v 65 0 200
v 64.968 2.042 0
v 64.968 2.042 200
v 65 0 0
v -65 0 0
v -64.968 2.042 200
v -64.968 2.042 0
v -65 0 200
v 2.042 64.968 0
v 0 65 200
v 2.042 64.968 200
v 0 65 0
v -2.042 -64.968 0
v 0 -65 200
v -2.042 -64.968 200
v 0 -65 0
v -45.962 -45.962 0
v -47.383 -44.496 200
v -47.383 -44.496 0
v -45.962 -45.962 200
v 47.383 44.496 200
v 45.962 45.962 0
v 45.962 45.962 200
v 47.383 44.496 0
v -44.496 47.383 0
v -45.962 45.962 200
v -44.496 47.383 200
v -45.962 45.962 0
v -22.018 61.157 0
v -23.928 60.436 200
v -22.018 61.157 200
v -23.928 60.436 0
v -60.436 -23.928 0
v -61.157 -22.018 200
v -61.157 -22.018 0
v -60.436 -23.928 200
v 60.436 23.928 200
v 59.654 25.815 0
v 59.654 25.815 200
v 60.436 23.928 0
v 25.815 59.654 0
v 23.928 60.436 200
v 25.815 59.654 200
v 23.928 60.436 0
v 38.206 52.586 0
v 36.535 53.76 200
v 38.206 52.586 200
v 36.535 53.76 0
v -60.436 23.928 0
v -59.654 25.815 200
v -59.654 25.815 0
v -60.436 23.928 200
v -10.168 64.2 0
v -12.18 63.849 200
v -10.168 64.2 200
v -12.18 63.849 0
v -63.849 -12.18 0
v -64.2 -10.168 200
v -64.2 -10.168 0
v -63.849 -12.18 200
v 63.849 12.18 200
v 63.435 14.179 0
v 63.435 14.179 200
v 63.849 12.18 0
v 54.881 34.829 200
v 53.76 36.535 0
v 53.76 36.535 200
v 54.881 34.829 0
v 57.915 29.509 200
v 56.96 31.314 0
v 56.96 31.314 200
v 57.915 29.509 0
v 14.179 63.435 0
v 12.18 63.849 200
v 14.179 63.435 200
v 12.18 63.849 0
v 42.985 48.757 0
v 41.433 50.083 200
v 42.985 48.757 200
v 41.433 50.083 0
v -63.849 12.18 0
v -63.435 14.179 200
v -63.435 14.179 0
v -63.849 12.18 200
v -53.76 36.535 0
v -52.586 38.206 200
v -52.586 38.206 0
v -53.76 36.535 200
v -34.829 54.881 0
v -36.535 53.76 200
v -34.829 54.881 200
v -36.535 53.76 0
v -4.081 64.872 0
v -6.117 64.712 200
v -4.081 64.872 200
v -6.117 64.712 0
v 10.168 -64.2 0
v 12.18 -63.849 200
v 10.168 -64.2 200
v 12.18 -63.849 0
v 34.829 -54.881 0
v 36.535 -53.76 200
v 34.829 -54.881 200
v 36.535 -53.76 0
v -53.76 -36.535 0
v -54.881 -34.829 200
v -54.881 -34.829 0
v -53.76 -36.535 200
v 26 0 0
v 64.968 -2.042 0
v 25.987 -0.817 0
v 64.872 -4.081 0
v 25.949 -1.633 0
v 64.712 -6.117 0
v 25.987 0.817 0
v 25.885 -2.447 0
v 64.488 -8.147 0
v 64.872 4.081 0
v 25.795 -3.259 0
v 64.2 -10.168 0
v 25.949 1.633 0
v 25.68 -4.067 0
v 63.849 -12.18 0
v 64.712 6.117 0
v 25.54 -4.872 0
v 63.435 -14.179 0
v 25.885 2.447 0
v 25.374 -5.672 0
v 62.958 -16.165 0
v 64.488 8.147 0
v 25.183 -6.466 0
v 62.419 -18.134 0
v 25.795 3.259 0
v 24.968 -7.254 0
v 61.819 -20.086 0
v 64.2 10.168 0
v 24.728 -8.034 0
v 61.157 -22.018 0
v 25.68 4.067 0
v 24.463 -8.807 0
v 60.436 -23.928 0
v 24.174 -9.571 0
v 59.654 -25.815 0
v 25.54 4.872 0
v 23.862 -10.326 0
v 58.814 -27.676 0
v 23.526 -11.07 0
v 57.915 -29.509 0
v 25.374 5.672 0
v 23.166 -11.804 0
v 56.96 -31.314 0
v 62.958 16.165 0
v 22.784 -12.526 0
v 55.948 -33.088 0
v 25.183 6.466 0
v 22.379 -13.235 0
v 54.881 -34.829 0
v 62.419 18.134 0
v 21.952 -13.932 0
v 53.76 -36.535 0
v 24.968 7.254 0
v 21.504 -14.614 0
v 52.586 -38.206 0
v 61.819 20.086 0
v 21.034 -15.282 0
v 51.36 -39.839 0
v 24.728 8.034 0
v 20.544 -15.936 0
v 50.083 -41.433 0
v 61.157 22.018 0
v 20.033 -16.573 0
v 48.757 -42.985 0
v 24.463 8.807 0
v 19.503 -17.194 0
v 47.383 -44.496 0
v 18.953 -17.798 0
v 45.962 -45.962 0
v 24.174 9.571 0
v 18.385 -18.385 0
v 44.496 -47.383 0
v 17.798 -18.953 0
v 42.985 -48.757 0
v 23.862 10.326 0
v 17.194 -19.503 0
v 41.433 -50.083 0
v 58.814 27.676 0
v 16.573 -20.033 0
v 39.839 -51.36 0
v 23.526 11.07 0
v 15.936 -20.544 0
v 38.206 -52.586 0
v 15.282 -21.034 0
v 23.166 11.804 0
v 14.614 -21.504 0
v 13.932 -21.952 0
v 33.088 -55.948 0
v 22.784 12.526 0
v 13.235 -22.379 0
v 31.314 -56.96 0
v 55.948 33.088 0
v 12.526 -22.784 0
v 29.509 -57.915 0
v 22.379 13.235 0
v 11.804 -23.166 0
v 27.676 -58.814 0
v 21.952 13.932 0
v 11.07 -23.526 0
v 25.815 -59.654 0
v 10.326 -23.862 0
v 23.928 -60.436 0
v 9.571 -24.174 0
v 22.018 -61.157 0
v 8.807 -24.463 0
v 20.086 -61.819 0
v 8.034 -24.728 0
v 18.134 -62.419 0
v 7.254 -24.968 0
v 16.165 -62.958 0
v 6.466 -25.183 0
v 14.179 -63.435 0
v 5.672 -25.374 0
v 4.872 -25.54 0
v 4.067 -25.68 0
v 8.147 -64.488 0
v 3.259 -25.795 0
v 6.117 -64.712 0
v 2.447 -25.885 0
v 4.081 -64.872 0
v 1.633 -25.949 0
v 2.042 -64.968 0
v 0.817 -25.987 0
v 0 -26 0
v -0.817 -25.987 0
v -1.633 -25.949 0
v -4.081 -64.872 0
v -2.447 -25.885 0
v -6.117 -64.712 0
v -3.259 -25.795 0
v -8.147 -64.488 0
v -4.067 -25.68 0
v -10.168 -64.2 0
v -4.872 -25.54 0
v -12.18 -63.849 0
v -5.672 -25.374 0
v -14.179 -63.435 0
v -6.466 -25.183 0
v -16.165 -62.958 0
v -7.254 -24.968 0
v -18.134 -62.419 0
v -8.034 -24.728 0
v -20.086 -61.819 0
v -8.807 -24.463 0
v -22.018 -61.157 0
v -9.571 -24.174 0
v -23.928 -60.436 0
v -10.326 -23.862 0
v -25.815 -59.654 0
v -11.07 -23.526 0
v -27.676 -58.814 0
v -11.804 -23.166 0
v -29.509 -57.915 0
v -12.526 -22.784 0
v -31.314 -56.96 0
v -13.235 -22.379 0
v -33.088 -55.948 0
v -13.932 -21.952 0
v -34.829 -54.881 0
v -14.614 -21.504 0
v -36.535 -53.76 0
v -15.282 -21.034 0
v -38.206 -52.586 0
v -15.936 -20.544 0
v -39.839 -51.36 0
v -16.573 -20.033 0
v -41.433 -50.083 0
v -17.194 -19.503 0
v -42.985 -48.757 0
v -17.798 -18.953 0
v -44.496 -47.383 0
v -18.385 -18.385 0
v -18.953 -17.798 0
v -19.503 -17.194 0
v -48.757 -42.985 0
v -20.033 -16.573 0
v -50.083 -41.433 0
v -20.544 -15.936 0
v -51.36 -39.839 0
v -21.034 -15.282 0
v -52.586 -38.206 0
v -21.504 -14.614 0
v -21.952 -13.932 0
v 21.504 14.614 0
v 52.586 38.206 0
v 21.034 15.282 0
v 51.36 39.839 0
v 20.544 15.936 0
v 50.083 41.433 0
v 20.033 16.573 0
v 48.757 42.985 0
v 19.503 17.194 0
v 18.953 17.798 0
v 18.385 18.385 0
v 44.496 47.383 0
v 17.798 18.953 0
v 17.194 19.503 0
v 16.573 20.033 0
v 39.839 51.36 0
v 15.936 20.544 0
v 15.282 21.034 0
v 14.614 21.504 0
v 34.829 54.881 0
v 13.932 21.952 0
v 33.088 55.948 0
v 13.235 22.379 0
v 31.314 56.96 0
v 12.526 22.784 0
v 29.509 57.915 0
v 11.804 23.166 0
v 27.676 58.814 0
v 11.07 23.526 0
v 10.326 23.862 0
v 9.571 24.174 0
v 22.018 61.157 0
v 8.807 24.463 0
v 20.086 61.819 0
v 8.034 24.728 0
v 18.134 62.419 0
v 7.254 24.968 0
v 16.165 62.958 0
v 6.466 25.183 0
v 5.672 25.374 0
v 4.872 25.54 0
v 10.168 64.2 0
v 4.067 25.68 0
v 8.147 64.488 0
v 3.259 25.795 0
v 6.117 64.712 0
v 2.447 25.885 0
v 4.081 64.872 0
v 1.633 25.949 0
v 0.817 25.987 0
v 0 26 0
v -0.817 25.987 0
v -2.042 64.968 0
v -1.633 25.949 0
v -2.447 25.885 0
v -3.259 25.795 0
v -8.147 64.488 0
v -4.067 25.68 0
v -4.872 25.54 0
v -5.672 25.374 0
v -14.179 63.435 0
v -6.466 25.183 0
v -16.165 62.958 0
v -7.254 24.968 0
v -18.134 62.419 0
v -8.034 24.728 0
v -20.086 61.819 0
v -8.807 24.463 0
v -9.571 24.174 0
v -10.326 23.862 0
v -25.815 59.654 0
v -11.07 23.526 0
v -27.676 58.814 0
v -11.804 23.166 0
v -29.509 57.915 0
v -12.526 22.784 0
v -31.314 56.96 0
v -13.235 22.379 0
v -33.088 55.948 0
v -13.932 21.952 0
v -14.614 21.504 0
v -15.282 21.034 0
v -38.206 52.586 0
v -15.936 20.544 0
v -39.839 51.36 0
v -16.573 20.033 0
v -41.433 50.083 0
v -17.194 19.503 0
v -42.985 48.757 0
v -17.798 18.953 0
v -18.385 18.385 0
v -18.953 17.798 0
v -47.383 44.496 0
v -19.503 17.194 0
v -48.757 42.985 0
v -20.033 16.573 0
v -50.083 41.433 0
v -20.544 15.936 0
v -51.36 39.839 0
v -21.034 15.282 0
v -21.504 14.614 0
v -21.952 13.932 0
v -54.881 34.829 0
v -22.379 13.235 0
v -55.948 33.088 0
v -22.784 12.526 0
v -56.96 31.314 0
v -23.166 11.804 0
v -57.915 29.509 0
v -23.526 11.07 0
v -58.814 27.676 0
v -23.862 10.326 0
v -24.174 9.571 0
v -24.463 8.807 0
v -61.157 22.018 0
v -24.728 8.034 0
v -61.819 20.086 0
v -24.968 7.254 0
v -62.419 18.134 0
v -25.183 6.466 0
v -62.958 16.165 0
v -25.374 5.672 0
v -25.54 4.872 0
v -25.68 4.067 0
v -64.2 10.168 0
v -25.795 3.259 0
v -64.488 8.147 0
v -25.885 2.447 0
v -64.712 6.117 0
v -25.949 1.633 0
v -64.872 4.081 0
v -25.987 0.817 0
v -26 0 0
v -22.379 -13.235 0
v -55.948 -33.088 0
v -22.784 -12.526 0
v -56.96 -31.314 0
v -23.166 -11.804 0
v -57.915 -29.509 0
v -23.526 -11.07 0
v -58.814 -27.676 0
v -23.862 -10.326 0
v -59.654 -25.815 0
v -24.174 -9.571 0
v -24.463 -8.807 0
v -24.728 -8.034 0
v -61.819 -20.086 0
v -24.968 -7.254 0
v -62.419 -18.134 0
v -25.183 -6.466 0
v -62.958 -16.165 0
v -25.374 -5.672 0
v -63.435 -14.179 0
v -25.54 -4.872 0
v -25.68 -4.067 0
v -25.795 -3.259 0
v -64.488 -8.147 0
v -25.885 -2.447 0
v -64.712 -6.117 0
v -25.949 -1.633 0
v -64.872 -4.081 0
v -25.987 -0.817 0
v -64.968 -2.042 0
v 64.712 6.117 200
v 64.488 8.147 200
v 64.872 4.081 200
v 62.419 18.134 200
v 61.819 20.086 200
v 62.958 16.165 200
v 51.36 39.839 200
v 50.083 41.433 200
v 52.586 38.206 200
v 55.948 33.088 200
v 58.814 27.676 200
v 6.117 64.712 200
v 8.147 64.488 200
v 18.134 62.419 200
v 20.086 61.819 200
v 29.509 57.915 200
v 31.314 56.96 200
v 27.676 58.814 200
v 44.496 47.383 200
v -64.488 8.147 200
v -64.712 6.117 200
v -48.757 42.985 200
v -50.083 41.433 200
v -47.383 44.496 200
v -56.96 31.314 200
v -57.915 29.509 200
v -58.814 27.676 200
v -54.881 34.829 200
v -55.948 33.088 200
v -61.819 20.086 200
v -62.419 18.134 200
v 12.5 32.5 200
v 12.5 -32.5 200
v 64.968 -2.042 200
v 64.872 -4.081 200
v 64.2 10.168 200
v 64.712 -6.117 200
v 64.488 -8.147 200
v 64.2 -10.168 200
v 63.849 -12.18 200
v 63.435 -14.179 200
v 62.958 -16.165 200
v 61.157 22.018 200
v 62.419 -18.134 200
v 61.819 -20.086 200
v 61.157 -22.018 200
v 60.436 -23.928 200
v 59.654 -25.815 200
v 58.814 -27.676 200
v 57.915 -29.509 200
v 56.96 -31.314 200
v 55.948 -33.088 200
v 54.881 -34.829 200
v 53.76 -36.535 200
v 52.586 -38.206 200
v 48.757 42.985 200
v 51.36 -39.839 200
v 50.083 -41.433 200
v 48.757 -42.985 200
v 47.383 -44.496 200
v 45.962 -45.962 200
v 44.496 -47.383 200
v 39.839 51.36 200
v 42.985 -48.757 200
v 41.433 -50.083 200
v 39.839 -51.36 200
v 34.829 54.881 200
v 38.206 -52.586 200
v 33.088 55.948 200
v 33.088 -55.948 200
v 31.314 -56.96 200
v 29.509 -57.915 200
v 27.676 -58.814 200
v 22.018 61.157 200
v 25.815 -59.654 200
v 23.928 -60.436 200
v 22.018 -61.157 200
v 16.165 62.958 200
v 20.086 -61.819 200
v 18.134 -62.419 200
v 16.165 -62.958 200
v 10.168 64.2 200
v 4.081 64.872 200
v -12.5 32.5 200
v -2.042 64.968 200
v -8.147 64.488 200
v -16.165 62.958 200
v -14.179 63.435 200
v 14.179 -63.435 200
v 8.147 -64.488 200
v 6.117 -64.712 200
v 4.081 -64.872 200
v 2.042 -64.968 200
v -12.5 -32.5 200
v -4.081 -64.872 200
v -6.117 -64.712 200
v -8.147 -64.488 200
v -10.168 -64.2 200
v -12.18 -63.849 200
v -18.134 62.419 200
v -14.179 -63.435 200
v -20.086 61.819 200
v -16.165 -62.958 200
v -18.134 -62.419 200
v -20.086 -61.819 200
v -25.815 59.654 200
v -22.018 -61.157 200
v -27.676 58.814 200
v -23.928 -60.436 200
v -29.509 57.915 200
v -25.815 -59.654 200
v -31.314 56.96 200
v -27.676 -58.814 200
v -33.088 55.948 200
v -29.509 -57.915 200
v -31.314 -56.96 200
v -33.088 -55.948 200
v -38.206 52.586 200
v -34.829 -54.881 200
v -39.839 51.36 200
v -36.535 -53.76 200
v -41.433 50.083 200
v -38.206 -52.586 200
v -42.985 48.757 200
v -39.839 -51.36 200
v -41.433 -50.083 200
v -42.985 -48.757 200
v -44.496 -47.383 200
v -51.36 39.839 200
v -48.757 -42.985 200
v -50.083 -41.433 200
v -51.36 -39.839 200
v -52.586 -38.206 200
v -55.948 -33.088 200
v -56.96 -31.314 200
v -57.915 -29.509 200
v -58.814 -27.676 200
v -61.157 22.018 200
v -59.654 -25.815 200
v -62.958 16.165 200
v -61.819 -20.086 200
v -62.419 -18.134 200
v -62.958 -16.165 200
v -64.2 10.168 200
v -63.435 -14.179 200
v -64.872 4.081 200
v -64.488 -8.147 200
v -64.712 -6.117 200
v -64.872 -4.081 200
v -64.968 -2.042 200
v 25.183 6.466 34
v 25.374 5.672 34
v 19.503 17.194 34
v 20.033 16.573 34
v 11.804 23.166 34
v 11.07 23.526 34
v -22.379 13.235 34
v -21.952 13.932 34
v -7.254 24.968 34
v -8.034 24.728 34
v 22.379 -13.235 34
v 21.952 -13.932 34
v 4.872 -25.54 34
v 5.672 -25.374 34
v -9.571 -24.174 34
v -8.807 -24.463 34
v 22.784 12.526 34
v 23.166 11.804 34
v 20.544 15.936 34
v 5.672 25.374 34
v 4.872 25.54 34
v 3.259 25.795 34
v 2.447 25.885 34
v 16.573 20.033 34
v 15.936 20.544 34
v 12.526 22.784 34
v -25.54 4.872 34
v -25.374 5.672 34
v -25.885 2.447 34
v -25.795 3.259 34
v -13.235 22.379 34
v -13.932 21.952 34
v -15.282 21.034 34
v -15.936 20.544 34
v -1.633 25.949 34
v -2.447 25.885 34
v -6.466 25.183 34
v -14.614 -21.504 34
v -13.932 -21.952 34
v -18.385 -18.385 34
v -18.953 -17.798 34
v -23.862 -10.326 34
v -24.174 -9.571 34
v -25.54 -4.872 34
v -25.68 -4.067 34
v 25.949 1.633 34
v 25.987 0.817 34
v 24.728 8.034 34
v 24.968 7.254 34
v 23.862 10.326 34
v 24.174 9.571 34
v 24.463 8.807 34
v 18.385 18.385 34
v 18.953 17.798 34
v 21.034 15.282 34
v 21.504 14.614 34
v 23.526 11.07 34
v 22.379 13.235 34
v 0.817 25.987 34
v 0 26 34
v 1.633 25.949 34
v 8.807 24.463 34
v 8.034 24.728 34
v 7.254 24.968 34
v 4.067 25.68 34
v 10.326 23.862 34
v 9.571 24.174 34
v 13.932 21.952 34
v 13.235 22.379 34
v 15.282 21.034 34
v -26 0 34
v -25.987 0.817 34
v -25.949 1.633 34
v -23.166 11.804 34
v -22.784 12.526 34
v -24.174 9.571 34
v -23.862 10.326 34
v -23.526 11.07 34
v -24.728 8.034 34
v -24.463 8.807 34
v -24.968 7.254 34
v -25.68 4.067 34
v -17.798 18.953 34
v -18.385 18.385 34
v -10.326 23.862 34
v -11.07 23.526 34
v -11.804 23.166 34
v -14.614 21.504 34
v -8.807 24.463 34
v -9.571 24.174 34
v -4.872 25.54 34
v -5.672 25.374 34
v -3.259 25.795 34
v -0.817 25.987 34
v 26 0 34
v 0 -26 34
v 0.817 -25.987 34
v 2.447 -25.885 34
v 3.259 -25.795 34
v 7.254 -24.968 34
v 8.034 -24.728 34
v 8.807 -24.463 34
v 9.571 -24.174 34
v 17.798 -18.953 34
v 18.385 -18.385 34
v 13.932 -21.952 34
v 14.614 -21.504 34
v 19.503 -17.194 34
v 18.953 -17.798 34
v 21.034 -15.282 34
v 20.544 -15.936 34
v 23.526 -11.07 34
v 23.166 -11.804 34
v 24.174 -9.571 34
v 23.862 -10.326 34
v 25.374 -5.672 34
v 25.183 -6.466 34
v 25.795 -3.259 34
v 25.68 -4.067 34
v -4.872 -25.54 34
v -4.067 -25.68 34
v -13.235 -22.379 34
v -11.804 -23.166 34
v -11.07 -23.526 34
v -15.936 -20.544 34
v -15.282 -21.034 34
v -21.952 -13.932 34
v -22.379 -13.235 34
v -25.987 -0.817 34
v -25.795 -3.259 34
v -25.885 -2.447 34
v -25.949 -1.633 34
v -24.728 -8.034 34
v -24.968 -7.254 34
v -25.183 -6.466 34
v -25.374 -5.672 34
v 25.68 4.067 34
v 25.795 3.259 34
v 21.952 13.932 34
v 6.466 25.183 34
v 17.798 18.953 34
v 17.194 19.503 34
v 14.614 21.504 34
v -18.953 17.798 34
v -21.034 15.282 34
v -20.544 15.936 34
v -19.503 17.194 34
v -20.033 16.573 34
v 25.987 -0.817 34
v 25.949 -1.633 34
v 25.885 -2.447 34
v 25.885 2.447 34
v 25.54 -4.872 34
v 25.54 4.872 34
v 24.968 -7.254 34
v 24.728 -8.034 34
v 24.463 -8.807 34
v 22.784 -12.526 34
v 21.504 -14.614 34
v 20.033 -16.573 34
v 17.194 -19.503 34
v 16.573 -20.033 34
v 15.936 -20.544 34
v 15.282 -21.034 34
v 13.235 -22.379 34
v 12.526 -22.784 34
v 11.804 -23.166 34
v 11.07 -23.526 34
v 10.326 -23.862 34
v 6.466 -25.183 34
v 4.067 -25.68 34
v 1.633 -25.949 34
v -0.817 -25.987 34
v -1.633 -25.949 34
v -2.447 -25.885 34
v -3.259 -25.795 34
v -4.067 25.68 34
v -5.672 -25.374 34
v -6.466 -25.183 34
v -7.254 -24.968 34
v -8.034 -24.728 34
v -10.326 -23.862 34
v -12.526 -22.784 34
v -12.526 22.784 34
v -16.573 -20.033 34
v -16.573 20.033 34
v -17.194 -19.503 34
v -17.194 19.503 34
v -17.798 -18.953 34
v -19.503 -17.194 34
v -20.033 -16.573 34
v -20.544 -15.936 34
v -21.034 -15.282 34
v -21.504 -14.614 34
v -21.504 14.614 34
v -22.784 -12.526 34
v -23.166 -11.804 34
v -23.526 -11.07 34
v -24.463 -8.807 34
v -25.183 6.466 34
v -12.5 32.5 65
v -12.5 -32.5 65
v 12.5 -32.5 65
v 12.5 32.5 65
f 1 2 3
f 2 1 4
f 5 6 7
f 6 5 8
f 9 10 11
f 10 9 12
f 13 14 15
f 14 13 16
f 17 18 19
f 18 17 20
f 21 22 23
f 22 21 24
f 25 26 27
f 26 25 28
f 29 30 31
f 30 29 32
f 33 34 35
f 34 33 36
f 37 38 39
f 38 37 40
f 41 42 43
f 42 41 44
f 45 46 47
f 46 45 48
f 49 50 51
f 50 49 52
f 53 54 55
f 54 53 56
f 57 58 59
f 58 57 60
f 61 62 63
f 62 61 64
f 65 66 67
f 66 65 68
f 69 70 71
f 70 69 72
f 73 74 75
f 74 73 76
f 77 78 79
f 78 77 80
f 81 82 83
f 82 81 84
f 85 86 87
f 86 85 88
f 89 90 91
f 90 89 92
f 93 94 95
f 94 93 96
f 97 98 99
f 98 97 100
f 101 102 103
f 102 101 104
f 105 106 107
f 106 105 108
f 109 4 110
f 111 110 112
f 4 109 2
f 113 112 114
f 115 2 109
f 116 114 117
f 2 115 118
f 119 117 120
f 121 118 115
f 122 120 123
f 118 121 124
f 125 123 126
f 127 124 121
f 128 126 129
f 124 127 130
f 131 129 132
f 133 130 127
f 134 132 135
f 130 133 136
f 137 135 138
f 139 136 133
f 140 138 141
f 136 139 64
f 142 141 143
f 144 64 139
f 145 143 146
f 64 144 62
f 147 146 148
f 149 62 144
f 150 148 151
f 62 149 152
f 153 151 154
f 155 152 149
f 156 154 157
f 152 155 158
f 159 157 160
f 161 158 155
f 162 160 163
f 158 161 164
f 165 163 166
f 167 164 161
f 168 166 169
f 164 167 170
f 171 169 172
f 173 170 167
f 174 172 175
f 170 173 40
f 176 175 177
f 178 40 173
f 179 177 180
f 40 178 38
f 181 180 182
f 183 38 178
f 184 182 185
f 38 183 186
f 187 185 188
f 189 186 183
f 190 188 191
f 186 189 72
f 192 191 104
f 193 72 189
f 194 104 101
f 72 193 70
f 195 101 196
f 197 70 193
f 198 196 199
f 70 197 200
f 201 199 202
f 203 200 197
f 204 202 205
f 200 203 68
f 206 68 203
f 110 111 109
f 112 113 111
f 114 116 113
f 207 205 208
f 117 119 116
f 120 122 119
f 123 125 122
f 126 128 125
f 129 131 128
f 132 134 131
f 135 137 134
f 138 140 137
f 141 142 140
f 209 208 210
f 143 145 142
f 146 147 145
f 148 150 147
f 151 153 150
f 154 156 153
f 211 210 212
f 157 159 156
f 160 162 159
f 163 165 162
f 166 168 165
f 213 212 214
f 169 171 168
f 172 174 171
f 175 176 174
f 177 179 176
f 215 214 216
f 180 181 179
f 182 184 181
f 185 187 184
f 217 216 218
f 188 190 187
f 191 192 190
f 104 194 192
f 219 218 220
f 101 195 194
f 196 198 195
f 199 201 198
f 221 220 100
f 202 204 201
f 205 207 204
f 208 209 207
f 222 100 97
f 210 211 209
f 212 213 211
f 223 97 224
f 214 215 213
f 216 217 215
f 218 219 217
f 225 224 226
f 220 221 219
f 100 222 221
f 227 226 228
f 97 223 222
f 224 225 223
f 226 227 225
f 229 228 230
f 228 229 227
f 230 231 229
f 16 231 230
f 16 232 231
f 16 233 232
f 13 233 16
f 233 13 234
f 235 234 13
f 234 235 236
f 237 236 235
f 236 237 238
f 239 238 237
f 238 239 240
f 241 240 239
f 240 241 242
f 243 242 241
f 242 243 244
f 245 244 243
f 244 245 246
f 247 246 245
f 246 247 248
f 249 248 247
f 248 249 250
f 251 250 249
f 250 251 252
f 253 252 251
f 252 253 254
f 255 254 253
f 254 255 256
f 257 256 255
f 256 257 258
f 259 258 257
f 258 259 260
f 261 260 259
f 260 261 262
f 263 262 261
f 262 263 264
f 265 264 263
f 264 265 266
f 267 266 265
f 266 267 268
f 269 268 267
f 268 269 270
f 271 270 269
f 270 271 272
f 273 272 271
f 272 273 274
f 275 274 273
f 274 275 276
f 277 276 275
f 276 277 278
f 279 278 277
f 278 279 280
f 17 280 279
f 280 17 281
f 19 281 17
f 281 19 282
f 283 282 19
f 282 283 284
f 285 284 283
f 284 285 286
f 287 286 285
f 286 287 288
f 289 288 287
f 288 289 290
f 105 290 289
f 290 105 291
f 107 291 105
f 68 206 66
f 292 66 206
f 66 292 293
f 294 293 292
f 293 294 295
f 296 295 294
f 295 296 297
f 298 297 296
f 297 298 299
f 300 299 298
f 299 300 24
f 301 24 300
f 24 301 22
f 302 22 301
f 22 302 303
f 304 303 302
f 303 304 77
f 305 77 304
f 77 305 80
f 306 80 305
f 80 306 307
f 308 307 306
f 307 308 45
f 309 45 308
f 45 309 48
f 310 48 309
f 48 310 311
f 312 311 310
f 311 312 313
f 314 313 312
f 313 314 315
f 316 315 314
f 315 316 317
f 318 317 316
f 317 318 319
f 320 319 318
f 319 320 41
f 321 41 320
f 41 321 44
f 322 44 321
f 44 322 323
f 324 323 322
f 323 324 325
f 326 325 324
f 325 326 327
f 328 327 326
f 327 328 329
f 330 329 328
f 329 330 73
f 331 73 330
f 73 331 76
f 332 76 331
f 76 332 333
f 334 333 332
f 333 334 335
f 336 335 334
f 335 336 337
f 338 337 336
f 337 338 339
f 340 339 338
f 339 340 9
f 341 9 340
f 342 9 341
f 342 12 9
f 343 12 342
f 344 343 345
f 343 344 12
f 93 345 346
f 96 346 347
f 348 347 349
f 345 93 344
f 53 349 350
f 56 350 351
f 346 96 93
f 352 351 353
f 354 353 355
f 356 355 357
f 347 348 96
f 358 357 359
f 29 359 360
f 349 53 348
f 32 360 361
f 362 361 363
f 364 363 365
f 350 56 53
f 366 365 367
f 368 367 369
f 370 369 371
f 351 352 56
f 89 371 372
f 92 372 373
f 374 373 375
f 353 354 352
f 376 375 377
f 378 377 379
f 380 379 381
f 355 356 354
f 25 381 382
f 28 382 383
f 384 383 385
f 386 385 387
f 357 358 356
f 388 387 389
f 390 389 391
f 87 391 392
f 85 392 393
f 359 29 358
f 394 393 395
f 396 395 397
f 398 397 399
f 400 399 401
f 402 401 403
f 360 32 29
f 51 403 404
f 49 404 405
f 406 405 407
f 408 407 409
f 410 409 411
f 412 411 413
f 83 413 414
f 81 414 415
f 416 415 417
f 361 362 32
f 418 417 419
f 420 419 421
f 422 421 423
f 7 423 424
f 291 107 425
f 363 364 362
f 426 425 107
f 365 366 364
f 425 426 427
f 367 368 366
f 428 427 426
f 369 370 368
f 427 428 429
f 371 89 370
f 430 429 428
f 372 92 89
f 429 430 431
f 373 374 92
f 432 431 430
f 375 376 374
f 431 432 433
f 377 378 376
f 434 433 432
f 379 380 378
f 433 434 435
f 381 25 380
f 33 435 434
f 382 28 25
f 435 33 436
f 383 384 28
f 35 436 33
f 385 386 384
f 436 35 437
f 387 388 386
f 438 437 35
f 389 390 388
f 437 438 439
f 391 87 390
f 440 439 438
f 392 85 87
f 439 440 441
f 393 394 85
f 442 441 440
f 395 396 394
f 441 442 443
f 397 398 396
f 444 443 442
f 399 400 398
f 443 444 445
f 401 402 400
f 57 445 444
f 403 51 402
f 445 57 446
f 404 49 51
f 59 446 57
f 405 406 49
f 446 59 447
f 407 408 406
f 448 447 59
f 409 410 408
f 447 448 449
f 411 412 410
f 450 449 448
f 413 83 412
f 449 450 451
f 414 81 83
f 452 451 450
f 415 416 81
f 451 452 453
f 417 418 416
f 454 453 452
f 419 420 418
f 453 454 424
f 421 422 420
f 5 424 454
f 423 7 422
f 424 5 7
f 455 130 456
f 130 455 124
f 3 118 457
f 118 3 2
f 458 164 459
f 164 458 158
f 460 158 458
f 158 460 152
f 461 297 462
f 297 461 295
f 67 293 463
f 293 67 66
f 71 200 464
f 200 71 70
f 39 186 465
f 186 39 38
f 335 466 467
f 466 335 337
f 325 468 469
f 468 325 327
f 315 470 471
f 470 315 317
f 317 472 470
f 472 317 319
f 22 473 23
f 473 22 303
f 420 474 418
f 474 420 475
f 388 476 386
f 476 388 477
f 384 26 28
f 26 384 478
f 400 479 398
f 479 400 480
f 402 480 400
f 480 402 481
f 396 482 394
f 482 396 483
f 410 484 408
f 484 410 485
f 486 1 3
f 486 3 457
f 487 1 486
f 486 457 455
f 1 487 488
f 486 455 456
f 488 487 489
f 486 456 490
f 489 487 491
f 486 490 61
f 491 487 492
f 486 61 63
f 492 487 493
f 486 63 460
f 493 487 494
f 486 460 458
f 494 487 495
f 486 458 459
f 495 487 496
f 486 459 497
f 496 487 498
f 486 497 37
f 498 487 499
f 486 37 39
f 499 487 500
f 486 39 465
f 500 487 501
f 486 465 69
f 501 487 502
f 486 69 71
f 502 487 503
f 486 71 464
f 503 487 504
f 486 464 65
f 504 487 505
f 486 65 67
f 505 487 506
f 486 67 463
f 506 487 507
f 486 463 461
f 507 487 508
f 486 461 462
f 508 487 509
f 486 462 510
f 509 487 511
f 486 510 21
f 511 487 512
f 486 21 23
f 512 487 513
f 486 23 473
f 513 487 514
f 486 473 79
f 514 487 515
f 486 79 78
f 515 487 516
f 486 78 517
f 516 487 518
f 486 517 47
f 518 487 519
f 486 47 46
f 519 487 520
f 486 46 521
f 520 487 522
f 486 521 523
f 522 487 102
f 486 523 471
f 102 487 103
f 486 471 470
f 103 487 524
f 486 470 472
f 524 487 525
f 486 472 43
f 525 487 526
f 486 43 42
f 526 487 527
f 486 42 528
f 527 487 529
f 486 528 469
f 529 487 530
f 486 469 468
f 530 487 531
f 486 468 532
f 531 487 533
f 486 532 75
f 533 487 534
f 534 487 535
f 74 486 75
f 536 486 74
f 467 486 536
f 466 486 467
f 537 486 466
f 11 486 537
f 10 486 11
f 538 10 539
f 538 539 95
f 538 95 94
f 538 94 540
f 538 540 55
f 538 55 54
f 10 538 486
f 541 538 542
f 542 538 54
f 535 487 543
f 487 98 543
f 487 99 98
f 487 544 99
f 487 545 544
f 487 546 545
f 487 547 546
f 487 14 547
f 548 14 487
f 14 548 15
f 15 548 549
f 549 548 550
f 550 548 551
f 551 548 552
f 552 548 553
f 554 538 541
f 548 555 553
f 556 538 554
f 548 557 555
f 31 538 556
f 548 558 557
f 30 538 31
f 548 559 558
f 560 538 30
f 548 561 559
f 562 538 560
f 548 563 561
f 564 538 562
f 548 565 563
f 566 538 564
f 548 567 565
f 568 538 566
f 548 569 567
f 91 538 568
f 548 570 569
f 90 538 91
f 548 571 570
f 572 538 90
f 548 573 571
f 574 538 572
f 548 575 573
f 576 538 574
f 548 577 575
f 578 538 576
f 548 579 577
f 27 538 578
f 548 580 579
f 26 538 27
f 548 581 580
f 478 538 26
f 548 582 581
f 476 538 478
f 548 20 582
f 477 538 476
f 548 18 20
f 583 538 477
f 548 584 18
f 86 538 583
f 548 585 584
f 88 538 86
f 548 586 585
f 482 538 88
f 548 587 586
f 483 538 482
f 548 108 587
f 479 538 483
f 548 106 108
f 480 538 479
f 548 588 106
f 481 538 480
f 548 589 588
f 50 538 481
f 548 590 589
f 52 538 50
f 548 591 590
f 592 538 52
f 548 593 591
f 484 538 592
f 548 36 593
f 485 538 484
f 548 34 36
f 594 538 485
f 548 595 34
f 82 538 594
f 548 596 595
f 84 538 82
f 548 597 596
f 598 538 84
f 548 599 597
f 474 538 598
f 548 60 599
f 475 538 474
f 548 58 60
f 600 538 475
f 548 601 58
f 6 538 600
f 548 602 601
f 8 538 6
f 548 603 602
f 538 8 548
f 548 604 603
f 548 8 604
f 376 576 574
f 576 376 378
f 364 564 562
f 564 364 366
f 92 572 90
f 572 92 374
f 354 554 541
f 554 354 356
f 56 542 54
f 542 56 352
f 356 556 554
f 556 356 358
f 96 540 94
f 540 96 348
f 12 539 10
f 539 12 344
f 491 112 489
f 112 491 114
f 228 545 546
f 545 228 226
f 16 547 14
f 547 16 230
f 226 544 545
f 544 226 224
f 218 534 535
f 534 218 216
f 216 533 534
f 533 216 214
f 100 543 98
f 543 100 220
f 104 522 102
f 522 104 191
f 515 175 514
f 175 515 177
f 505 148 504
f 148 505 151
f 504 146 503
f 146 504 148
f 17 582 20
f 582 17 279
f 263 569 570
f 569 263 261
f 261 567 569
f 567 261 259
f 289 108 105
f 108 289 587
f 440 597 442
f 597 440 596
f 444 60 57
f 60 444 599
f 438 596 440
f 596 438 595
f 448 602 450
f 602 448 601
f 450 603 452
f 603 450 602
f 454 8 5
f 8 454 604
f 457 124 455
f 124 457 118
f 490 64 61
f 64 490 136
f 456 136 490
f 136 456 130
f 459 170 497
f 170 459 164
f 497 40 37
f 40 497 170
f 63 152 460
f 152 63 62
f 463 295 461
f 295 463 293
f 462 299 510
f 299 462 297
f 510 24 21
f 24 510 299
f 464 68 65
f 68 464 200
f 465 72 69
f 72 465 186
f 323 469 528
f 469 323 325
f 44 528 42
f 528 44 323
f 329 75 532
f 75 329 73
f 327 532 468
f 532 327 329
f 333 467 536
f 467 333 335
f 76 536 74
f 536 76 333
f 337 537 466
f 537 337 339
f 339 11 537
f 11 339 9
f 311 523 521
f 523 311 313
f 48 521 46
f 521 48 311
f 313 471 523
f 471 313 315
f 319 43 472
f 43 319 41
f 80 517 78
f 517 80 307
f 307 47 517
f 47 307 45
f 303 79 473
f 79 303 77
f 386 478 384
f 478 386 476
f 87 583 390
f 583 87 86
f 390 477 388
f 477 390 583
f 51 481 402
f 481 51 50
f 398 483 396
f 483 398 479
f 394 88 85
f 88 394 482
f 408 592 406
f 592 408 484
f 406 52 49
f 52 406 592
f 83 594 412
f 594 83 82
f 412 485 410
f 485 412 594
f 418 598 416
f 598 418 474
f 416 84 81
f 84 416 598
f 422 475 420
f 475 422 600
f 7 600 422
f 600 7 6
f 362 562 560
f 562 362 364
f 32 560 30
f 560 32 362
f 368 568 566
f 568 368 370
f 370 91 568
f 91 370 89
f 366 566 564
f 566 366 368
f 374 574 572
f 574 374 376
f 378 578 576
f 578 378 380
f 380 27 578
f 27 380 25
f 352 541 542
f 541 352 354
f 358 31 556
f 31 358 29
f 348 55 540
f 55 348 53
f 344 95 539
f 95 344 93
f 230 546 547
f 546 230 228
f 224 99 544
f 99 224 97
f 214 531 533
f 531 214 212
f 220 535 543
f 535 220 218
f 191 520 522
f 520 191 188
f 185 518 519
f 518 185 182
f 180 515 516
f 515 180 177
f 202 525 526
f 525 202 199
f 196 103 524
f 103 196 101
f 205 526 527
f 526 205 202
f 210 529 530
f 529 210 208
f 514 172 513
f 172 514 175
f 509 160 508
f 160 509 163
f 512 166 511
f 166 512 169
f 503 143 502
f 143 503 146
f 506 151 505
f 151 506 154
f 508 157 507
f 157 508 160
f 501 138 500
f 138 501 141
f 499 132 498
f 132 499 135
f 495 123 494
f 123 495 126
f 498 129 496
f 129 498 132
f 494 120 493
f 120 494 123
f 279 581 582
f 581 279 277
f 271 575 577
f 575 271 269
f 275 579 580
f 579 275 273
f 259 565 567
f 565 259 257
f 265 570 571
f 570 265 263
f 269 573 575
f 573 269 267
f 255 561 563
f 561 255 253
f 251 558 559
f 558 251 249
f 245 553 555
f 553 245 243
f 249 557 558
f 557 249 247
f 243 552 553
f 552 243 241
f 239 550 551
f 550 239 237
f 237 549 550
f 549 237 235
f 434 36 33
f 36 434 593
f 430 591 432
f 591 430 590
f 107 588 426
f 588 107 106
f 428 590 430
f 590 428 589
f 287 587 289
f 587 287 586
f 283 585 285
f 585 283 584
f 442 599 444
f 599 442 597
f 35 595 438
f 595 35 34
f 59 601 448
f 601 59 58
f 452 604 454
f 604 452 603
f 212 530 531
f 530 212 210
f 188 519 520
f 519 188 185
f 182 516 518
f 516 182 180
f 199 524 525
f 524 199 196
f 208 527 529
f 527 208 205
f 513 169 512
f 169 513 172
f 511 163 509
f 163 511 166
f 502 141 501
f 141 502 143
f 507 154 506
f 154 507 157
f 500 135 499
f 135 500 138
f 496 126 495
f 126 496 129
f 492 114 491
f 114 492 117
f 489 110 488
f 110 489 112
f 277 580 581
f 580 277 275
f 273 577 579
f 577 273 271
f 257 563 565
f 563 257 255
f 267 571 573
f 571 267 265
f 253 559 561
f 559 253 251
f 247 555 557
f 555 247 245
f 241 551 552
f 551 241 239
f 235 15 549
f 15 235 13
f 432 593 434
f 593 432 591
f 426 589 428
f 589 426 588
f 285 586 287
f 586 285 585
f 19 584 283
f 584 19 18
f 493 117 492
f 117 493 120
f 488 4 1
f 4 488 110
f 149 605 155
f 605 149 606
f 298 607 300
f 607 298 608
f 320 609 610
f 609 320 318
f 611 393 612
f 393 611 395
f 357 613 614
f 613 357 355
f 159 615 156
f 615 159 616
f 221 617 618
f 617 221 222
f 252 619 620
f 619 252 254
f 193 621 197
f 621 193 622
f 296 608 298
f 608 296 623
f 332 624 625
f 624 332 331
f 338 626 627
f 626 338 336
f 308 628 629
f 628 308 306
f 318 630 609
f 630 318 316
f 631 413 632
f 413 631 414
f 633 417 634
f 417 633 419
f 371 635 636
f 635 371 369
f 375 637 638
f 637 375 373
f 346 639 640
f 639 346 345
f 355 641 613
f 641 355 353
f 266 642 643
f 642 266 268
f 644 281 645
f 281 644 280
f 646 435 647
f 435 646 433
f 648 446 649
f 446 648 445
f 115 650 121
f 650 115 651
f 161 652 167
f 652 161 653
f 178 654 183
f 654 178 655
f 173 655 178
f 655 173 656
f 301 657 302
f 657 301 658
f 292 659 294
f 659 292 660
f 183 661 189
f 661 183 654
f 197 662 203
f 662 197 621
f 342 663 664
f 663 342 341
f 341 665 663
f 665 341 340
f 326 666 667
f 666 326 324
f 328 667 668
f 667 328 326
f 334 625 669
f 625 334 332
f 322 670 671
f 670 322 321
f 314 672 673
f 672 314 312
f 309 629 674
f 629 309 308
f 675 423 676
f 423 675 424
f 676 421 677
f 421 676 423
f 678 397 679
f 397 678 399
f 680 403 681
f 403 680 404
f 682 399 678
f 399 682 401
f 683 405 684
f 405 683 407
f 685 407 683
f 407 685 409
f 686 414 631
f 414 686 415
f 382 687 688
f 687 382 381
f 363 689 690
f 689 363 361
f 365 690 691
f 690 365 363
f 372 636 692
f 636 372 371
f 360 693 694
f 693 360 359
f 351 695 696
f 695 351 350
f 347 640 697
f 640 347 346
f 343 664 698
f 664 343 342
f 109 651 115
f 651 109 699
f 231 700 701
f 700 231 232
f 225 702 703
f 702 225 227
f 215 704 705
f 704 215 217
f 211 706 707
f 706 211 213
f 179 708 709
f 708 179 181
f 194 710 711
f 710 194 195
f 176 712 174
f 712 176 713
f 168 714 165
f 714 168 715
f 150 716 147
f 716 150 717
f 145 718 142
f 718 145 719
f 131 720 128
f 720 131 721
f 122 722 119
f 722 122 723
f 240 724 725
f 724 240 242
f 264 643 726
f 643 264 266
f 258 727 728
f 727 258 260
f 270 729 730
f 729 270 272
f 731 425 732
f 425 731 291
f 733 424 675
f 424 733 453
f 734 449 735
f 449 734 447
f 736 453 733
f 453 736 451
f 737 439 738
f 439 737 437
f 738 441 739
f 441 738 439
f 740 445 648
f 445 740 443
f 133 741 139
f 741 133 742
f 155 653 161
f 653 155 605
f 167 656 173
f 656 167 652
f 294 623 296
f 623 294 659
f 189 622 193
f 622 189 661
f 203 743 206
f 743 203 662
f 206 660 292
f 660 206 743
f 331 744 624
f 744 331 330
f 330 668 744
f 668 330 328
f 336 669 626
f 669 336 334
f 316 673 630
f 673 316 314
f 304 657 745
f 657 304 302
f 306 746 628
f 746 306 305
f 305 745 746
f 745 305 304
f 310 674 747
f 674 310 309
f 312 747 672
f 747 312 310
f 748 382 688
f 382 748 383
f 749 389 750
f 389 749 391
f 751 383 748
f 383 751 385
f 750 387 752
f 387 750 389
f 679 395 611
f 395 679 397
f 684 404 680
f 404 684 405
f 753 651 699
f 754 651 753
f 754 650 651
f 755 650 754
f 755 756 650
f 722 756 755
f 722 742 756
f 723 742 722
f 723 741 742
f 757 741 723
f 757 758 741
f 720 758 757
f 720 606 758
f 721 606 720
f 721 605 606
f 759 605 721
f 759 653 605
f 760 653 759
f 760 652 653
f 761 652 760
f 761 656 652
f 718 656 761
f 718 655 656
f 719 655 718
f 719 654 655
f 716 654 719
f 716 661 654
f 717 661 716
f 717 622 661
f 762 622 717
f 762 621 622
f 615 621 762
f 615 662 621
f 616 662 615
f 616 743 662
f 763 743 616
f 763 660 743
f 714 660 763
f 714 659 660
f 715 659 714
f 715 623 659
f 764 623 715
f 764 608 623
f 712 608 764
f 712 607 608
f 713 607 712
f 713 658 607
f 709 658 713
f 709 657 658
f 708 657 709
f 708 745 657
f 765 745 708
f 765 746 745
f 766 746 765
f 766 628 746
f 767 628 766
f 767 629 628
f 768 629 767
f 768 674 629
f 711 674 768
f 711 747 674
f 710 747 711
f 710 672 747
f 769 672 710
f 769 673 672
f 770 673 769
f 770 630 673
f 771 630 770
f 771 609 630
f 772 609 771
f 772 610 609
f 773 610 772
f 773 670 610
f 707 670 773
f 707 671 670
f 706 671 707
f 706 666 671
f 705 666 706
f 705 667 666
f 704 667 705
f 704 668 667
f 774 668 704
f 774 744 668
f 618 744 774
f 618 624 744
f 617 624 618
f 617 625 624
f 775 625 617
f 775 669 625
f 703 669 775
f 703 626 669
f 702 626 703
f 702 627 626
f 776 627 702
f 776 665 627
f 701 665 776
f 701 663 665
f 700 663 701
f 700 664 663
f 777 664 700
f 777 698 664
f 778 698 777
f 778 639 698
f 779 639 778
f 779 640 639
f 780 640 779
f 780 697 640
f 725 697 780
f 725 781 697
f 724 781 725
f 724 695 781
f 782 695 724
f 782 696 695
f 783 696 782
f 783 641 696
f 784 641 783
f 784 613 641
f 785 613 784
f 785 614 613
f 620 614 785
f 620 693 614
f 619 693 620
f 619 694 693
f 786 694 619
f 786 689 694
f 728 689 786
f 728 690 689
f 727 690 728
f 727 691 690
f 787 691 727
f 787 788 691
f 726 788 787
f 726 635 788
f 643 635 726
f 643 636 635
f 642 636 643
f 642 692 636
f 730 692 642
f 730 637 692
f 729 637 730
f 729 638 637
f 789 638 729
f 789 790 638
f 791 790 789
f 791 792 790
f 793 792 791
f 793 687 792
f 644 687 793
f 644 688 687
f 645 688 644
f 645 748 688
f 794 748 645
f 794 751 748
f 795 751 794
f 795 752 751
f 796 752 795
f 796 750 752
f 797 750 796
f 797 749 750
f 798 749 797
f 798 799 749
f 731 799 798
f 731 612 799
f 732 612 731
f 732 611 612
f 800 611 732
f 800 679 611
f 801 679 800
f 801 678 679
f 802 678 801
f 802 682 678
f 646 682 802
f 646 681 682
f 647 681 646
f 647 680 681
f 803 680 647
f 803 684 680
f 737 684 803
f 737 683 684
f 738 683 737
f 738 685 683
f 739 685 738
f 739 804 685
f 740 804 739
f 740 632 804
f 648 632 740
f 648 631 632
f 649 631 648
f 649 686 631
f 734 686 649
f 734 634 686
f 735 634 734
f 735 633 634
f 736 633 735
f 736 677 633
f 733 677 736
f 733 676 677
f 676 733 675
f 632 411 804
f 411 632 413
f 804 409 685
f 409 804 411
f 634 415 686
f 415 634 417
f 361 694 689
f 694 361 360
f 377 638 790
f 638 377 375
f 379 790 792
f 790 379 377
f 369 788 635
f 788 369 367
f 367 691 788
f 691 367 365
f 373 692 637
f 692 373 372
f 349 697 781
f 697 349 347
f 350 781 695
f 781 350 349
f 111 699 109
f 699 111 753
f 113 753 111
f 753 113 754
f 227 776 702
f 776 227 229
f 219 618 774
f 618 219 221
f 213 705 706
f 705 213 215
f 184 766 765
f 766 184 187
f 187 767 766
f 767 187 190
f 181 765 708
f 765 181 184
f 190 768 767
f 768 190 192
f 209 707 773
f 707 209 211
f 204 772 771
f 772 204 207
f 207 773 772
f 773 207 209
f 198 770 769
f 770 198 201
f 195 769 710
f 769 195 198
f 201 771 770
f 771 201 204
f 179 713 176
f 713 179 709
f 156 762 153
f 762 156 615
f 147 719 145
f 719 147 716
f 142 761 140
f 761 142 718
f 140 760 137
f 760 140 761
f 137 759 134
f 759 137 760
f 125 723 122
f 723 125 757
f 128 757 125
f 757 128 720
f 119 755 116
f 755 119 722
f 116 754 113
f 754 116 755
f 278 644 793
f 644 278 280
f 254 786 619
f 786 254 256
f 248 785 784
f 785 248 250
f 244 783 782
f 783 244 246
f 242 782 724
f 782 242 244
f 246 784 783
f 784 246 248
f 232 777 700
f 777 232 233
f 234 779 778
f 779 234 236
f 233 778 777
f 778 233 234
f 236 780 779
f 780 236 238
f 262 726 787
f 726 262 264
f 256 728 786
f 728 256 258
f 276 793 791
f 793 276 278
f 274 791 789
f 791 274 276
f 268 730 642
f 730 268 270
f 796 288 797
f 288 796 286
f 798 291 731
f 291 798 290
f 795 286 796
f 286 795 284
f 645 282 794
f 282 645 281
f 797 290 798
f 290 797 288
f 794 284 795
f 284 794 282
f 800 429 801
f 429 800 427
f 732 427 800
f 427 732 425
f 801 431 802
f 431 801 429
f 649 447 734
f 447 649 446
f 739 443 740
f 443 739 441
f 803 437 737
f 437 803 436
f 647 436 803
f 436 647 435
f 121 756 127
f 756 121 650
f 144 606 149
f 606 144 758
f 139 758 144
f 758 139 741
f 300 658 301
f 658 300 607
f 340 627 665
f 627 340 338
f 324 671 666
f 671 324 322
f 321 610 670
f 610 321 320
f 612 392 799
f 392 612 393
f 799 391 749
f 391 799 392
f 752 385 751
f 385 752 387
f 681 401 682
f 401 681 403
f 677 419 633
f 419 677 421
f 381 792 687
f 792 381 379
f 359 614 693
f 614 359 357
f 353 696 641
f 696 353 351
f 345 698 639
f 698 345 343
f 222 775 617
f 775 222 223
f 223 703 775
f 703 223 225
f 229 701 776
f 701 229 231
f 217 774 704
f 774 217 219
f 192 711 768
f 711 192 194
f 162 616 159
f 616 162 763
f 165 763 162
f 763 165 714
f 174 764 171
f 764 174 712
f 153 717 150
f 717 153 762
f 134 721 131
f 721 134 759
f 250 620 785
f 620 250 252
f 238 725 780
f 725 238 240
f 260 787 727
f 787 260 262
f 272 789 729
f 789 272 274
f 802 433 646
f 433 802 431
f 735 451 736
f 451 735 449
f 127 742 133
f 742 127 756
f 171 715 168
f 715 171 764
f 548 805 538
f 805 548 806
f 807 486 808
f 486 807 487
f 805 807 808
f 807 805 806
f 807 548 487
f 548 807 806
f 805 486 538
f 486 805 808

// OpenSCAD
$fn = 200;
difference(){
    cylinder(h=200,r1=65,r2=65);
    translate([0,0,-1]) cylinder(h=35,r1=26,r2=26);
    translate([-12.5,-32.5,65]) cube([25,65,140]);    
}
